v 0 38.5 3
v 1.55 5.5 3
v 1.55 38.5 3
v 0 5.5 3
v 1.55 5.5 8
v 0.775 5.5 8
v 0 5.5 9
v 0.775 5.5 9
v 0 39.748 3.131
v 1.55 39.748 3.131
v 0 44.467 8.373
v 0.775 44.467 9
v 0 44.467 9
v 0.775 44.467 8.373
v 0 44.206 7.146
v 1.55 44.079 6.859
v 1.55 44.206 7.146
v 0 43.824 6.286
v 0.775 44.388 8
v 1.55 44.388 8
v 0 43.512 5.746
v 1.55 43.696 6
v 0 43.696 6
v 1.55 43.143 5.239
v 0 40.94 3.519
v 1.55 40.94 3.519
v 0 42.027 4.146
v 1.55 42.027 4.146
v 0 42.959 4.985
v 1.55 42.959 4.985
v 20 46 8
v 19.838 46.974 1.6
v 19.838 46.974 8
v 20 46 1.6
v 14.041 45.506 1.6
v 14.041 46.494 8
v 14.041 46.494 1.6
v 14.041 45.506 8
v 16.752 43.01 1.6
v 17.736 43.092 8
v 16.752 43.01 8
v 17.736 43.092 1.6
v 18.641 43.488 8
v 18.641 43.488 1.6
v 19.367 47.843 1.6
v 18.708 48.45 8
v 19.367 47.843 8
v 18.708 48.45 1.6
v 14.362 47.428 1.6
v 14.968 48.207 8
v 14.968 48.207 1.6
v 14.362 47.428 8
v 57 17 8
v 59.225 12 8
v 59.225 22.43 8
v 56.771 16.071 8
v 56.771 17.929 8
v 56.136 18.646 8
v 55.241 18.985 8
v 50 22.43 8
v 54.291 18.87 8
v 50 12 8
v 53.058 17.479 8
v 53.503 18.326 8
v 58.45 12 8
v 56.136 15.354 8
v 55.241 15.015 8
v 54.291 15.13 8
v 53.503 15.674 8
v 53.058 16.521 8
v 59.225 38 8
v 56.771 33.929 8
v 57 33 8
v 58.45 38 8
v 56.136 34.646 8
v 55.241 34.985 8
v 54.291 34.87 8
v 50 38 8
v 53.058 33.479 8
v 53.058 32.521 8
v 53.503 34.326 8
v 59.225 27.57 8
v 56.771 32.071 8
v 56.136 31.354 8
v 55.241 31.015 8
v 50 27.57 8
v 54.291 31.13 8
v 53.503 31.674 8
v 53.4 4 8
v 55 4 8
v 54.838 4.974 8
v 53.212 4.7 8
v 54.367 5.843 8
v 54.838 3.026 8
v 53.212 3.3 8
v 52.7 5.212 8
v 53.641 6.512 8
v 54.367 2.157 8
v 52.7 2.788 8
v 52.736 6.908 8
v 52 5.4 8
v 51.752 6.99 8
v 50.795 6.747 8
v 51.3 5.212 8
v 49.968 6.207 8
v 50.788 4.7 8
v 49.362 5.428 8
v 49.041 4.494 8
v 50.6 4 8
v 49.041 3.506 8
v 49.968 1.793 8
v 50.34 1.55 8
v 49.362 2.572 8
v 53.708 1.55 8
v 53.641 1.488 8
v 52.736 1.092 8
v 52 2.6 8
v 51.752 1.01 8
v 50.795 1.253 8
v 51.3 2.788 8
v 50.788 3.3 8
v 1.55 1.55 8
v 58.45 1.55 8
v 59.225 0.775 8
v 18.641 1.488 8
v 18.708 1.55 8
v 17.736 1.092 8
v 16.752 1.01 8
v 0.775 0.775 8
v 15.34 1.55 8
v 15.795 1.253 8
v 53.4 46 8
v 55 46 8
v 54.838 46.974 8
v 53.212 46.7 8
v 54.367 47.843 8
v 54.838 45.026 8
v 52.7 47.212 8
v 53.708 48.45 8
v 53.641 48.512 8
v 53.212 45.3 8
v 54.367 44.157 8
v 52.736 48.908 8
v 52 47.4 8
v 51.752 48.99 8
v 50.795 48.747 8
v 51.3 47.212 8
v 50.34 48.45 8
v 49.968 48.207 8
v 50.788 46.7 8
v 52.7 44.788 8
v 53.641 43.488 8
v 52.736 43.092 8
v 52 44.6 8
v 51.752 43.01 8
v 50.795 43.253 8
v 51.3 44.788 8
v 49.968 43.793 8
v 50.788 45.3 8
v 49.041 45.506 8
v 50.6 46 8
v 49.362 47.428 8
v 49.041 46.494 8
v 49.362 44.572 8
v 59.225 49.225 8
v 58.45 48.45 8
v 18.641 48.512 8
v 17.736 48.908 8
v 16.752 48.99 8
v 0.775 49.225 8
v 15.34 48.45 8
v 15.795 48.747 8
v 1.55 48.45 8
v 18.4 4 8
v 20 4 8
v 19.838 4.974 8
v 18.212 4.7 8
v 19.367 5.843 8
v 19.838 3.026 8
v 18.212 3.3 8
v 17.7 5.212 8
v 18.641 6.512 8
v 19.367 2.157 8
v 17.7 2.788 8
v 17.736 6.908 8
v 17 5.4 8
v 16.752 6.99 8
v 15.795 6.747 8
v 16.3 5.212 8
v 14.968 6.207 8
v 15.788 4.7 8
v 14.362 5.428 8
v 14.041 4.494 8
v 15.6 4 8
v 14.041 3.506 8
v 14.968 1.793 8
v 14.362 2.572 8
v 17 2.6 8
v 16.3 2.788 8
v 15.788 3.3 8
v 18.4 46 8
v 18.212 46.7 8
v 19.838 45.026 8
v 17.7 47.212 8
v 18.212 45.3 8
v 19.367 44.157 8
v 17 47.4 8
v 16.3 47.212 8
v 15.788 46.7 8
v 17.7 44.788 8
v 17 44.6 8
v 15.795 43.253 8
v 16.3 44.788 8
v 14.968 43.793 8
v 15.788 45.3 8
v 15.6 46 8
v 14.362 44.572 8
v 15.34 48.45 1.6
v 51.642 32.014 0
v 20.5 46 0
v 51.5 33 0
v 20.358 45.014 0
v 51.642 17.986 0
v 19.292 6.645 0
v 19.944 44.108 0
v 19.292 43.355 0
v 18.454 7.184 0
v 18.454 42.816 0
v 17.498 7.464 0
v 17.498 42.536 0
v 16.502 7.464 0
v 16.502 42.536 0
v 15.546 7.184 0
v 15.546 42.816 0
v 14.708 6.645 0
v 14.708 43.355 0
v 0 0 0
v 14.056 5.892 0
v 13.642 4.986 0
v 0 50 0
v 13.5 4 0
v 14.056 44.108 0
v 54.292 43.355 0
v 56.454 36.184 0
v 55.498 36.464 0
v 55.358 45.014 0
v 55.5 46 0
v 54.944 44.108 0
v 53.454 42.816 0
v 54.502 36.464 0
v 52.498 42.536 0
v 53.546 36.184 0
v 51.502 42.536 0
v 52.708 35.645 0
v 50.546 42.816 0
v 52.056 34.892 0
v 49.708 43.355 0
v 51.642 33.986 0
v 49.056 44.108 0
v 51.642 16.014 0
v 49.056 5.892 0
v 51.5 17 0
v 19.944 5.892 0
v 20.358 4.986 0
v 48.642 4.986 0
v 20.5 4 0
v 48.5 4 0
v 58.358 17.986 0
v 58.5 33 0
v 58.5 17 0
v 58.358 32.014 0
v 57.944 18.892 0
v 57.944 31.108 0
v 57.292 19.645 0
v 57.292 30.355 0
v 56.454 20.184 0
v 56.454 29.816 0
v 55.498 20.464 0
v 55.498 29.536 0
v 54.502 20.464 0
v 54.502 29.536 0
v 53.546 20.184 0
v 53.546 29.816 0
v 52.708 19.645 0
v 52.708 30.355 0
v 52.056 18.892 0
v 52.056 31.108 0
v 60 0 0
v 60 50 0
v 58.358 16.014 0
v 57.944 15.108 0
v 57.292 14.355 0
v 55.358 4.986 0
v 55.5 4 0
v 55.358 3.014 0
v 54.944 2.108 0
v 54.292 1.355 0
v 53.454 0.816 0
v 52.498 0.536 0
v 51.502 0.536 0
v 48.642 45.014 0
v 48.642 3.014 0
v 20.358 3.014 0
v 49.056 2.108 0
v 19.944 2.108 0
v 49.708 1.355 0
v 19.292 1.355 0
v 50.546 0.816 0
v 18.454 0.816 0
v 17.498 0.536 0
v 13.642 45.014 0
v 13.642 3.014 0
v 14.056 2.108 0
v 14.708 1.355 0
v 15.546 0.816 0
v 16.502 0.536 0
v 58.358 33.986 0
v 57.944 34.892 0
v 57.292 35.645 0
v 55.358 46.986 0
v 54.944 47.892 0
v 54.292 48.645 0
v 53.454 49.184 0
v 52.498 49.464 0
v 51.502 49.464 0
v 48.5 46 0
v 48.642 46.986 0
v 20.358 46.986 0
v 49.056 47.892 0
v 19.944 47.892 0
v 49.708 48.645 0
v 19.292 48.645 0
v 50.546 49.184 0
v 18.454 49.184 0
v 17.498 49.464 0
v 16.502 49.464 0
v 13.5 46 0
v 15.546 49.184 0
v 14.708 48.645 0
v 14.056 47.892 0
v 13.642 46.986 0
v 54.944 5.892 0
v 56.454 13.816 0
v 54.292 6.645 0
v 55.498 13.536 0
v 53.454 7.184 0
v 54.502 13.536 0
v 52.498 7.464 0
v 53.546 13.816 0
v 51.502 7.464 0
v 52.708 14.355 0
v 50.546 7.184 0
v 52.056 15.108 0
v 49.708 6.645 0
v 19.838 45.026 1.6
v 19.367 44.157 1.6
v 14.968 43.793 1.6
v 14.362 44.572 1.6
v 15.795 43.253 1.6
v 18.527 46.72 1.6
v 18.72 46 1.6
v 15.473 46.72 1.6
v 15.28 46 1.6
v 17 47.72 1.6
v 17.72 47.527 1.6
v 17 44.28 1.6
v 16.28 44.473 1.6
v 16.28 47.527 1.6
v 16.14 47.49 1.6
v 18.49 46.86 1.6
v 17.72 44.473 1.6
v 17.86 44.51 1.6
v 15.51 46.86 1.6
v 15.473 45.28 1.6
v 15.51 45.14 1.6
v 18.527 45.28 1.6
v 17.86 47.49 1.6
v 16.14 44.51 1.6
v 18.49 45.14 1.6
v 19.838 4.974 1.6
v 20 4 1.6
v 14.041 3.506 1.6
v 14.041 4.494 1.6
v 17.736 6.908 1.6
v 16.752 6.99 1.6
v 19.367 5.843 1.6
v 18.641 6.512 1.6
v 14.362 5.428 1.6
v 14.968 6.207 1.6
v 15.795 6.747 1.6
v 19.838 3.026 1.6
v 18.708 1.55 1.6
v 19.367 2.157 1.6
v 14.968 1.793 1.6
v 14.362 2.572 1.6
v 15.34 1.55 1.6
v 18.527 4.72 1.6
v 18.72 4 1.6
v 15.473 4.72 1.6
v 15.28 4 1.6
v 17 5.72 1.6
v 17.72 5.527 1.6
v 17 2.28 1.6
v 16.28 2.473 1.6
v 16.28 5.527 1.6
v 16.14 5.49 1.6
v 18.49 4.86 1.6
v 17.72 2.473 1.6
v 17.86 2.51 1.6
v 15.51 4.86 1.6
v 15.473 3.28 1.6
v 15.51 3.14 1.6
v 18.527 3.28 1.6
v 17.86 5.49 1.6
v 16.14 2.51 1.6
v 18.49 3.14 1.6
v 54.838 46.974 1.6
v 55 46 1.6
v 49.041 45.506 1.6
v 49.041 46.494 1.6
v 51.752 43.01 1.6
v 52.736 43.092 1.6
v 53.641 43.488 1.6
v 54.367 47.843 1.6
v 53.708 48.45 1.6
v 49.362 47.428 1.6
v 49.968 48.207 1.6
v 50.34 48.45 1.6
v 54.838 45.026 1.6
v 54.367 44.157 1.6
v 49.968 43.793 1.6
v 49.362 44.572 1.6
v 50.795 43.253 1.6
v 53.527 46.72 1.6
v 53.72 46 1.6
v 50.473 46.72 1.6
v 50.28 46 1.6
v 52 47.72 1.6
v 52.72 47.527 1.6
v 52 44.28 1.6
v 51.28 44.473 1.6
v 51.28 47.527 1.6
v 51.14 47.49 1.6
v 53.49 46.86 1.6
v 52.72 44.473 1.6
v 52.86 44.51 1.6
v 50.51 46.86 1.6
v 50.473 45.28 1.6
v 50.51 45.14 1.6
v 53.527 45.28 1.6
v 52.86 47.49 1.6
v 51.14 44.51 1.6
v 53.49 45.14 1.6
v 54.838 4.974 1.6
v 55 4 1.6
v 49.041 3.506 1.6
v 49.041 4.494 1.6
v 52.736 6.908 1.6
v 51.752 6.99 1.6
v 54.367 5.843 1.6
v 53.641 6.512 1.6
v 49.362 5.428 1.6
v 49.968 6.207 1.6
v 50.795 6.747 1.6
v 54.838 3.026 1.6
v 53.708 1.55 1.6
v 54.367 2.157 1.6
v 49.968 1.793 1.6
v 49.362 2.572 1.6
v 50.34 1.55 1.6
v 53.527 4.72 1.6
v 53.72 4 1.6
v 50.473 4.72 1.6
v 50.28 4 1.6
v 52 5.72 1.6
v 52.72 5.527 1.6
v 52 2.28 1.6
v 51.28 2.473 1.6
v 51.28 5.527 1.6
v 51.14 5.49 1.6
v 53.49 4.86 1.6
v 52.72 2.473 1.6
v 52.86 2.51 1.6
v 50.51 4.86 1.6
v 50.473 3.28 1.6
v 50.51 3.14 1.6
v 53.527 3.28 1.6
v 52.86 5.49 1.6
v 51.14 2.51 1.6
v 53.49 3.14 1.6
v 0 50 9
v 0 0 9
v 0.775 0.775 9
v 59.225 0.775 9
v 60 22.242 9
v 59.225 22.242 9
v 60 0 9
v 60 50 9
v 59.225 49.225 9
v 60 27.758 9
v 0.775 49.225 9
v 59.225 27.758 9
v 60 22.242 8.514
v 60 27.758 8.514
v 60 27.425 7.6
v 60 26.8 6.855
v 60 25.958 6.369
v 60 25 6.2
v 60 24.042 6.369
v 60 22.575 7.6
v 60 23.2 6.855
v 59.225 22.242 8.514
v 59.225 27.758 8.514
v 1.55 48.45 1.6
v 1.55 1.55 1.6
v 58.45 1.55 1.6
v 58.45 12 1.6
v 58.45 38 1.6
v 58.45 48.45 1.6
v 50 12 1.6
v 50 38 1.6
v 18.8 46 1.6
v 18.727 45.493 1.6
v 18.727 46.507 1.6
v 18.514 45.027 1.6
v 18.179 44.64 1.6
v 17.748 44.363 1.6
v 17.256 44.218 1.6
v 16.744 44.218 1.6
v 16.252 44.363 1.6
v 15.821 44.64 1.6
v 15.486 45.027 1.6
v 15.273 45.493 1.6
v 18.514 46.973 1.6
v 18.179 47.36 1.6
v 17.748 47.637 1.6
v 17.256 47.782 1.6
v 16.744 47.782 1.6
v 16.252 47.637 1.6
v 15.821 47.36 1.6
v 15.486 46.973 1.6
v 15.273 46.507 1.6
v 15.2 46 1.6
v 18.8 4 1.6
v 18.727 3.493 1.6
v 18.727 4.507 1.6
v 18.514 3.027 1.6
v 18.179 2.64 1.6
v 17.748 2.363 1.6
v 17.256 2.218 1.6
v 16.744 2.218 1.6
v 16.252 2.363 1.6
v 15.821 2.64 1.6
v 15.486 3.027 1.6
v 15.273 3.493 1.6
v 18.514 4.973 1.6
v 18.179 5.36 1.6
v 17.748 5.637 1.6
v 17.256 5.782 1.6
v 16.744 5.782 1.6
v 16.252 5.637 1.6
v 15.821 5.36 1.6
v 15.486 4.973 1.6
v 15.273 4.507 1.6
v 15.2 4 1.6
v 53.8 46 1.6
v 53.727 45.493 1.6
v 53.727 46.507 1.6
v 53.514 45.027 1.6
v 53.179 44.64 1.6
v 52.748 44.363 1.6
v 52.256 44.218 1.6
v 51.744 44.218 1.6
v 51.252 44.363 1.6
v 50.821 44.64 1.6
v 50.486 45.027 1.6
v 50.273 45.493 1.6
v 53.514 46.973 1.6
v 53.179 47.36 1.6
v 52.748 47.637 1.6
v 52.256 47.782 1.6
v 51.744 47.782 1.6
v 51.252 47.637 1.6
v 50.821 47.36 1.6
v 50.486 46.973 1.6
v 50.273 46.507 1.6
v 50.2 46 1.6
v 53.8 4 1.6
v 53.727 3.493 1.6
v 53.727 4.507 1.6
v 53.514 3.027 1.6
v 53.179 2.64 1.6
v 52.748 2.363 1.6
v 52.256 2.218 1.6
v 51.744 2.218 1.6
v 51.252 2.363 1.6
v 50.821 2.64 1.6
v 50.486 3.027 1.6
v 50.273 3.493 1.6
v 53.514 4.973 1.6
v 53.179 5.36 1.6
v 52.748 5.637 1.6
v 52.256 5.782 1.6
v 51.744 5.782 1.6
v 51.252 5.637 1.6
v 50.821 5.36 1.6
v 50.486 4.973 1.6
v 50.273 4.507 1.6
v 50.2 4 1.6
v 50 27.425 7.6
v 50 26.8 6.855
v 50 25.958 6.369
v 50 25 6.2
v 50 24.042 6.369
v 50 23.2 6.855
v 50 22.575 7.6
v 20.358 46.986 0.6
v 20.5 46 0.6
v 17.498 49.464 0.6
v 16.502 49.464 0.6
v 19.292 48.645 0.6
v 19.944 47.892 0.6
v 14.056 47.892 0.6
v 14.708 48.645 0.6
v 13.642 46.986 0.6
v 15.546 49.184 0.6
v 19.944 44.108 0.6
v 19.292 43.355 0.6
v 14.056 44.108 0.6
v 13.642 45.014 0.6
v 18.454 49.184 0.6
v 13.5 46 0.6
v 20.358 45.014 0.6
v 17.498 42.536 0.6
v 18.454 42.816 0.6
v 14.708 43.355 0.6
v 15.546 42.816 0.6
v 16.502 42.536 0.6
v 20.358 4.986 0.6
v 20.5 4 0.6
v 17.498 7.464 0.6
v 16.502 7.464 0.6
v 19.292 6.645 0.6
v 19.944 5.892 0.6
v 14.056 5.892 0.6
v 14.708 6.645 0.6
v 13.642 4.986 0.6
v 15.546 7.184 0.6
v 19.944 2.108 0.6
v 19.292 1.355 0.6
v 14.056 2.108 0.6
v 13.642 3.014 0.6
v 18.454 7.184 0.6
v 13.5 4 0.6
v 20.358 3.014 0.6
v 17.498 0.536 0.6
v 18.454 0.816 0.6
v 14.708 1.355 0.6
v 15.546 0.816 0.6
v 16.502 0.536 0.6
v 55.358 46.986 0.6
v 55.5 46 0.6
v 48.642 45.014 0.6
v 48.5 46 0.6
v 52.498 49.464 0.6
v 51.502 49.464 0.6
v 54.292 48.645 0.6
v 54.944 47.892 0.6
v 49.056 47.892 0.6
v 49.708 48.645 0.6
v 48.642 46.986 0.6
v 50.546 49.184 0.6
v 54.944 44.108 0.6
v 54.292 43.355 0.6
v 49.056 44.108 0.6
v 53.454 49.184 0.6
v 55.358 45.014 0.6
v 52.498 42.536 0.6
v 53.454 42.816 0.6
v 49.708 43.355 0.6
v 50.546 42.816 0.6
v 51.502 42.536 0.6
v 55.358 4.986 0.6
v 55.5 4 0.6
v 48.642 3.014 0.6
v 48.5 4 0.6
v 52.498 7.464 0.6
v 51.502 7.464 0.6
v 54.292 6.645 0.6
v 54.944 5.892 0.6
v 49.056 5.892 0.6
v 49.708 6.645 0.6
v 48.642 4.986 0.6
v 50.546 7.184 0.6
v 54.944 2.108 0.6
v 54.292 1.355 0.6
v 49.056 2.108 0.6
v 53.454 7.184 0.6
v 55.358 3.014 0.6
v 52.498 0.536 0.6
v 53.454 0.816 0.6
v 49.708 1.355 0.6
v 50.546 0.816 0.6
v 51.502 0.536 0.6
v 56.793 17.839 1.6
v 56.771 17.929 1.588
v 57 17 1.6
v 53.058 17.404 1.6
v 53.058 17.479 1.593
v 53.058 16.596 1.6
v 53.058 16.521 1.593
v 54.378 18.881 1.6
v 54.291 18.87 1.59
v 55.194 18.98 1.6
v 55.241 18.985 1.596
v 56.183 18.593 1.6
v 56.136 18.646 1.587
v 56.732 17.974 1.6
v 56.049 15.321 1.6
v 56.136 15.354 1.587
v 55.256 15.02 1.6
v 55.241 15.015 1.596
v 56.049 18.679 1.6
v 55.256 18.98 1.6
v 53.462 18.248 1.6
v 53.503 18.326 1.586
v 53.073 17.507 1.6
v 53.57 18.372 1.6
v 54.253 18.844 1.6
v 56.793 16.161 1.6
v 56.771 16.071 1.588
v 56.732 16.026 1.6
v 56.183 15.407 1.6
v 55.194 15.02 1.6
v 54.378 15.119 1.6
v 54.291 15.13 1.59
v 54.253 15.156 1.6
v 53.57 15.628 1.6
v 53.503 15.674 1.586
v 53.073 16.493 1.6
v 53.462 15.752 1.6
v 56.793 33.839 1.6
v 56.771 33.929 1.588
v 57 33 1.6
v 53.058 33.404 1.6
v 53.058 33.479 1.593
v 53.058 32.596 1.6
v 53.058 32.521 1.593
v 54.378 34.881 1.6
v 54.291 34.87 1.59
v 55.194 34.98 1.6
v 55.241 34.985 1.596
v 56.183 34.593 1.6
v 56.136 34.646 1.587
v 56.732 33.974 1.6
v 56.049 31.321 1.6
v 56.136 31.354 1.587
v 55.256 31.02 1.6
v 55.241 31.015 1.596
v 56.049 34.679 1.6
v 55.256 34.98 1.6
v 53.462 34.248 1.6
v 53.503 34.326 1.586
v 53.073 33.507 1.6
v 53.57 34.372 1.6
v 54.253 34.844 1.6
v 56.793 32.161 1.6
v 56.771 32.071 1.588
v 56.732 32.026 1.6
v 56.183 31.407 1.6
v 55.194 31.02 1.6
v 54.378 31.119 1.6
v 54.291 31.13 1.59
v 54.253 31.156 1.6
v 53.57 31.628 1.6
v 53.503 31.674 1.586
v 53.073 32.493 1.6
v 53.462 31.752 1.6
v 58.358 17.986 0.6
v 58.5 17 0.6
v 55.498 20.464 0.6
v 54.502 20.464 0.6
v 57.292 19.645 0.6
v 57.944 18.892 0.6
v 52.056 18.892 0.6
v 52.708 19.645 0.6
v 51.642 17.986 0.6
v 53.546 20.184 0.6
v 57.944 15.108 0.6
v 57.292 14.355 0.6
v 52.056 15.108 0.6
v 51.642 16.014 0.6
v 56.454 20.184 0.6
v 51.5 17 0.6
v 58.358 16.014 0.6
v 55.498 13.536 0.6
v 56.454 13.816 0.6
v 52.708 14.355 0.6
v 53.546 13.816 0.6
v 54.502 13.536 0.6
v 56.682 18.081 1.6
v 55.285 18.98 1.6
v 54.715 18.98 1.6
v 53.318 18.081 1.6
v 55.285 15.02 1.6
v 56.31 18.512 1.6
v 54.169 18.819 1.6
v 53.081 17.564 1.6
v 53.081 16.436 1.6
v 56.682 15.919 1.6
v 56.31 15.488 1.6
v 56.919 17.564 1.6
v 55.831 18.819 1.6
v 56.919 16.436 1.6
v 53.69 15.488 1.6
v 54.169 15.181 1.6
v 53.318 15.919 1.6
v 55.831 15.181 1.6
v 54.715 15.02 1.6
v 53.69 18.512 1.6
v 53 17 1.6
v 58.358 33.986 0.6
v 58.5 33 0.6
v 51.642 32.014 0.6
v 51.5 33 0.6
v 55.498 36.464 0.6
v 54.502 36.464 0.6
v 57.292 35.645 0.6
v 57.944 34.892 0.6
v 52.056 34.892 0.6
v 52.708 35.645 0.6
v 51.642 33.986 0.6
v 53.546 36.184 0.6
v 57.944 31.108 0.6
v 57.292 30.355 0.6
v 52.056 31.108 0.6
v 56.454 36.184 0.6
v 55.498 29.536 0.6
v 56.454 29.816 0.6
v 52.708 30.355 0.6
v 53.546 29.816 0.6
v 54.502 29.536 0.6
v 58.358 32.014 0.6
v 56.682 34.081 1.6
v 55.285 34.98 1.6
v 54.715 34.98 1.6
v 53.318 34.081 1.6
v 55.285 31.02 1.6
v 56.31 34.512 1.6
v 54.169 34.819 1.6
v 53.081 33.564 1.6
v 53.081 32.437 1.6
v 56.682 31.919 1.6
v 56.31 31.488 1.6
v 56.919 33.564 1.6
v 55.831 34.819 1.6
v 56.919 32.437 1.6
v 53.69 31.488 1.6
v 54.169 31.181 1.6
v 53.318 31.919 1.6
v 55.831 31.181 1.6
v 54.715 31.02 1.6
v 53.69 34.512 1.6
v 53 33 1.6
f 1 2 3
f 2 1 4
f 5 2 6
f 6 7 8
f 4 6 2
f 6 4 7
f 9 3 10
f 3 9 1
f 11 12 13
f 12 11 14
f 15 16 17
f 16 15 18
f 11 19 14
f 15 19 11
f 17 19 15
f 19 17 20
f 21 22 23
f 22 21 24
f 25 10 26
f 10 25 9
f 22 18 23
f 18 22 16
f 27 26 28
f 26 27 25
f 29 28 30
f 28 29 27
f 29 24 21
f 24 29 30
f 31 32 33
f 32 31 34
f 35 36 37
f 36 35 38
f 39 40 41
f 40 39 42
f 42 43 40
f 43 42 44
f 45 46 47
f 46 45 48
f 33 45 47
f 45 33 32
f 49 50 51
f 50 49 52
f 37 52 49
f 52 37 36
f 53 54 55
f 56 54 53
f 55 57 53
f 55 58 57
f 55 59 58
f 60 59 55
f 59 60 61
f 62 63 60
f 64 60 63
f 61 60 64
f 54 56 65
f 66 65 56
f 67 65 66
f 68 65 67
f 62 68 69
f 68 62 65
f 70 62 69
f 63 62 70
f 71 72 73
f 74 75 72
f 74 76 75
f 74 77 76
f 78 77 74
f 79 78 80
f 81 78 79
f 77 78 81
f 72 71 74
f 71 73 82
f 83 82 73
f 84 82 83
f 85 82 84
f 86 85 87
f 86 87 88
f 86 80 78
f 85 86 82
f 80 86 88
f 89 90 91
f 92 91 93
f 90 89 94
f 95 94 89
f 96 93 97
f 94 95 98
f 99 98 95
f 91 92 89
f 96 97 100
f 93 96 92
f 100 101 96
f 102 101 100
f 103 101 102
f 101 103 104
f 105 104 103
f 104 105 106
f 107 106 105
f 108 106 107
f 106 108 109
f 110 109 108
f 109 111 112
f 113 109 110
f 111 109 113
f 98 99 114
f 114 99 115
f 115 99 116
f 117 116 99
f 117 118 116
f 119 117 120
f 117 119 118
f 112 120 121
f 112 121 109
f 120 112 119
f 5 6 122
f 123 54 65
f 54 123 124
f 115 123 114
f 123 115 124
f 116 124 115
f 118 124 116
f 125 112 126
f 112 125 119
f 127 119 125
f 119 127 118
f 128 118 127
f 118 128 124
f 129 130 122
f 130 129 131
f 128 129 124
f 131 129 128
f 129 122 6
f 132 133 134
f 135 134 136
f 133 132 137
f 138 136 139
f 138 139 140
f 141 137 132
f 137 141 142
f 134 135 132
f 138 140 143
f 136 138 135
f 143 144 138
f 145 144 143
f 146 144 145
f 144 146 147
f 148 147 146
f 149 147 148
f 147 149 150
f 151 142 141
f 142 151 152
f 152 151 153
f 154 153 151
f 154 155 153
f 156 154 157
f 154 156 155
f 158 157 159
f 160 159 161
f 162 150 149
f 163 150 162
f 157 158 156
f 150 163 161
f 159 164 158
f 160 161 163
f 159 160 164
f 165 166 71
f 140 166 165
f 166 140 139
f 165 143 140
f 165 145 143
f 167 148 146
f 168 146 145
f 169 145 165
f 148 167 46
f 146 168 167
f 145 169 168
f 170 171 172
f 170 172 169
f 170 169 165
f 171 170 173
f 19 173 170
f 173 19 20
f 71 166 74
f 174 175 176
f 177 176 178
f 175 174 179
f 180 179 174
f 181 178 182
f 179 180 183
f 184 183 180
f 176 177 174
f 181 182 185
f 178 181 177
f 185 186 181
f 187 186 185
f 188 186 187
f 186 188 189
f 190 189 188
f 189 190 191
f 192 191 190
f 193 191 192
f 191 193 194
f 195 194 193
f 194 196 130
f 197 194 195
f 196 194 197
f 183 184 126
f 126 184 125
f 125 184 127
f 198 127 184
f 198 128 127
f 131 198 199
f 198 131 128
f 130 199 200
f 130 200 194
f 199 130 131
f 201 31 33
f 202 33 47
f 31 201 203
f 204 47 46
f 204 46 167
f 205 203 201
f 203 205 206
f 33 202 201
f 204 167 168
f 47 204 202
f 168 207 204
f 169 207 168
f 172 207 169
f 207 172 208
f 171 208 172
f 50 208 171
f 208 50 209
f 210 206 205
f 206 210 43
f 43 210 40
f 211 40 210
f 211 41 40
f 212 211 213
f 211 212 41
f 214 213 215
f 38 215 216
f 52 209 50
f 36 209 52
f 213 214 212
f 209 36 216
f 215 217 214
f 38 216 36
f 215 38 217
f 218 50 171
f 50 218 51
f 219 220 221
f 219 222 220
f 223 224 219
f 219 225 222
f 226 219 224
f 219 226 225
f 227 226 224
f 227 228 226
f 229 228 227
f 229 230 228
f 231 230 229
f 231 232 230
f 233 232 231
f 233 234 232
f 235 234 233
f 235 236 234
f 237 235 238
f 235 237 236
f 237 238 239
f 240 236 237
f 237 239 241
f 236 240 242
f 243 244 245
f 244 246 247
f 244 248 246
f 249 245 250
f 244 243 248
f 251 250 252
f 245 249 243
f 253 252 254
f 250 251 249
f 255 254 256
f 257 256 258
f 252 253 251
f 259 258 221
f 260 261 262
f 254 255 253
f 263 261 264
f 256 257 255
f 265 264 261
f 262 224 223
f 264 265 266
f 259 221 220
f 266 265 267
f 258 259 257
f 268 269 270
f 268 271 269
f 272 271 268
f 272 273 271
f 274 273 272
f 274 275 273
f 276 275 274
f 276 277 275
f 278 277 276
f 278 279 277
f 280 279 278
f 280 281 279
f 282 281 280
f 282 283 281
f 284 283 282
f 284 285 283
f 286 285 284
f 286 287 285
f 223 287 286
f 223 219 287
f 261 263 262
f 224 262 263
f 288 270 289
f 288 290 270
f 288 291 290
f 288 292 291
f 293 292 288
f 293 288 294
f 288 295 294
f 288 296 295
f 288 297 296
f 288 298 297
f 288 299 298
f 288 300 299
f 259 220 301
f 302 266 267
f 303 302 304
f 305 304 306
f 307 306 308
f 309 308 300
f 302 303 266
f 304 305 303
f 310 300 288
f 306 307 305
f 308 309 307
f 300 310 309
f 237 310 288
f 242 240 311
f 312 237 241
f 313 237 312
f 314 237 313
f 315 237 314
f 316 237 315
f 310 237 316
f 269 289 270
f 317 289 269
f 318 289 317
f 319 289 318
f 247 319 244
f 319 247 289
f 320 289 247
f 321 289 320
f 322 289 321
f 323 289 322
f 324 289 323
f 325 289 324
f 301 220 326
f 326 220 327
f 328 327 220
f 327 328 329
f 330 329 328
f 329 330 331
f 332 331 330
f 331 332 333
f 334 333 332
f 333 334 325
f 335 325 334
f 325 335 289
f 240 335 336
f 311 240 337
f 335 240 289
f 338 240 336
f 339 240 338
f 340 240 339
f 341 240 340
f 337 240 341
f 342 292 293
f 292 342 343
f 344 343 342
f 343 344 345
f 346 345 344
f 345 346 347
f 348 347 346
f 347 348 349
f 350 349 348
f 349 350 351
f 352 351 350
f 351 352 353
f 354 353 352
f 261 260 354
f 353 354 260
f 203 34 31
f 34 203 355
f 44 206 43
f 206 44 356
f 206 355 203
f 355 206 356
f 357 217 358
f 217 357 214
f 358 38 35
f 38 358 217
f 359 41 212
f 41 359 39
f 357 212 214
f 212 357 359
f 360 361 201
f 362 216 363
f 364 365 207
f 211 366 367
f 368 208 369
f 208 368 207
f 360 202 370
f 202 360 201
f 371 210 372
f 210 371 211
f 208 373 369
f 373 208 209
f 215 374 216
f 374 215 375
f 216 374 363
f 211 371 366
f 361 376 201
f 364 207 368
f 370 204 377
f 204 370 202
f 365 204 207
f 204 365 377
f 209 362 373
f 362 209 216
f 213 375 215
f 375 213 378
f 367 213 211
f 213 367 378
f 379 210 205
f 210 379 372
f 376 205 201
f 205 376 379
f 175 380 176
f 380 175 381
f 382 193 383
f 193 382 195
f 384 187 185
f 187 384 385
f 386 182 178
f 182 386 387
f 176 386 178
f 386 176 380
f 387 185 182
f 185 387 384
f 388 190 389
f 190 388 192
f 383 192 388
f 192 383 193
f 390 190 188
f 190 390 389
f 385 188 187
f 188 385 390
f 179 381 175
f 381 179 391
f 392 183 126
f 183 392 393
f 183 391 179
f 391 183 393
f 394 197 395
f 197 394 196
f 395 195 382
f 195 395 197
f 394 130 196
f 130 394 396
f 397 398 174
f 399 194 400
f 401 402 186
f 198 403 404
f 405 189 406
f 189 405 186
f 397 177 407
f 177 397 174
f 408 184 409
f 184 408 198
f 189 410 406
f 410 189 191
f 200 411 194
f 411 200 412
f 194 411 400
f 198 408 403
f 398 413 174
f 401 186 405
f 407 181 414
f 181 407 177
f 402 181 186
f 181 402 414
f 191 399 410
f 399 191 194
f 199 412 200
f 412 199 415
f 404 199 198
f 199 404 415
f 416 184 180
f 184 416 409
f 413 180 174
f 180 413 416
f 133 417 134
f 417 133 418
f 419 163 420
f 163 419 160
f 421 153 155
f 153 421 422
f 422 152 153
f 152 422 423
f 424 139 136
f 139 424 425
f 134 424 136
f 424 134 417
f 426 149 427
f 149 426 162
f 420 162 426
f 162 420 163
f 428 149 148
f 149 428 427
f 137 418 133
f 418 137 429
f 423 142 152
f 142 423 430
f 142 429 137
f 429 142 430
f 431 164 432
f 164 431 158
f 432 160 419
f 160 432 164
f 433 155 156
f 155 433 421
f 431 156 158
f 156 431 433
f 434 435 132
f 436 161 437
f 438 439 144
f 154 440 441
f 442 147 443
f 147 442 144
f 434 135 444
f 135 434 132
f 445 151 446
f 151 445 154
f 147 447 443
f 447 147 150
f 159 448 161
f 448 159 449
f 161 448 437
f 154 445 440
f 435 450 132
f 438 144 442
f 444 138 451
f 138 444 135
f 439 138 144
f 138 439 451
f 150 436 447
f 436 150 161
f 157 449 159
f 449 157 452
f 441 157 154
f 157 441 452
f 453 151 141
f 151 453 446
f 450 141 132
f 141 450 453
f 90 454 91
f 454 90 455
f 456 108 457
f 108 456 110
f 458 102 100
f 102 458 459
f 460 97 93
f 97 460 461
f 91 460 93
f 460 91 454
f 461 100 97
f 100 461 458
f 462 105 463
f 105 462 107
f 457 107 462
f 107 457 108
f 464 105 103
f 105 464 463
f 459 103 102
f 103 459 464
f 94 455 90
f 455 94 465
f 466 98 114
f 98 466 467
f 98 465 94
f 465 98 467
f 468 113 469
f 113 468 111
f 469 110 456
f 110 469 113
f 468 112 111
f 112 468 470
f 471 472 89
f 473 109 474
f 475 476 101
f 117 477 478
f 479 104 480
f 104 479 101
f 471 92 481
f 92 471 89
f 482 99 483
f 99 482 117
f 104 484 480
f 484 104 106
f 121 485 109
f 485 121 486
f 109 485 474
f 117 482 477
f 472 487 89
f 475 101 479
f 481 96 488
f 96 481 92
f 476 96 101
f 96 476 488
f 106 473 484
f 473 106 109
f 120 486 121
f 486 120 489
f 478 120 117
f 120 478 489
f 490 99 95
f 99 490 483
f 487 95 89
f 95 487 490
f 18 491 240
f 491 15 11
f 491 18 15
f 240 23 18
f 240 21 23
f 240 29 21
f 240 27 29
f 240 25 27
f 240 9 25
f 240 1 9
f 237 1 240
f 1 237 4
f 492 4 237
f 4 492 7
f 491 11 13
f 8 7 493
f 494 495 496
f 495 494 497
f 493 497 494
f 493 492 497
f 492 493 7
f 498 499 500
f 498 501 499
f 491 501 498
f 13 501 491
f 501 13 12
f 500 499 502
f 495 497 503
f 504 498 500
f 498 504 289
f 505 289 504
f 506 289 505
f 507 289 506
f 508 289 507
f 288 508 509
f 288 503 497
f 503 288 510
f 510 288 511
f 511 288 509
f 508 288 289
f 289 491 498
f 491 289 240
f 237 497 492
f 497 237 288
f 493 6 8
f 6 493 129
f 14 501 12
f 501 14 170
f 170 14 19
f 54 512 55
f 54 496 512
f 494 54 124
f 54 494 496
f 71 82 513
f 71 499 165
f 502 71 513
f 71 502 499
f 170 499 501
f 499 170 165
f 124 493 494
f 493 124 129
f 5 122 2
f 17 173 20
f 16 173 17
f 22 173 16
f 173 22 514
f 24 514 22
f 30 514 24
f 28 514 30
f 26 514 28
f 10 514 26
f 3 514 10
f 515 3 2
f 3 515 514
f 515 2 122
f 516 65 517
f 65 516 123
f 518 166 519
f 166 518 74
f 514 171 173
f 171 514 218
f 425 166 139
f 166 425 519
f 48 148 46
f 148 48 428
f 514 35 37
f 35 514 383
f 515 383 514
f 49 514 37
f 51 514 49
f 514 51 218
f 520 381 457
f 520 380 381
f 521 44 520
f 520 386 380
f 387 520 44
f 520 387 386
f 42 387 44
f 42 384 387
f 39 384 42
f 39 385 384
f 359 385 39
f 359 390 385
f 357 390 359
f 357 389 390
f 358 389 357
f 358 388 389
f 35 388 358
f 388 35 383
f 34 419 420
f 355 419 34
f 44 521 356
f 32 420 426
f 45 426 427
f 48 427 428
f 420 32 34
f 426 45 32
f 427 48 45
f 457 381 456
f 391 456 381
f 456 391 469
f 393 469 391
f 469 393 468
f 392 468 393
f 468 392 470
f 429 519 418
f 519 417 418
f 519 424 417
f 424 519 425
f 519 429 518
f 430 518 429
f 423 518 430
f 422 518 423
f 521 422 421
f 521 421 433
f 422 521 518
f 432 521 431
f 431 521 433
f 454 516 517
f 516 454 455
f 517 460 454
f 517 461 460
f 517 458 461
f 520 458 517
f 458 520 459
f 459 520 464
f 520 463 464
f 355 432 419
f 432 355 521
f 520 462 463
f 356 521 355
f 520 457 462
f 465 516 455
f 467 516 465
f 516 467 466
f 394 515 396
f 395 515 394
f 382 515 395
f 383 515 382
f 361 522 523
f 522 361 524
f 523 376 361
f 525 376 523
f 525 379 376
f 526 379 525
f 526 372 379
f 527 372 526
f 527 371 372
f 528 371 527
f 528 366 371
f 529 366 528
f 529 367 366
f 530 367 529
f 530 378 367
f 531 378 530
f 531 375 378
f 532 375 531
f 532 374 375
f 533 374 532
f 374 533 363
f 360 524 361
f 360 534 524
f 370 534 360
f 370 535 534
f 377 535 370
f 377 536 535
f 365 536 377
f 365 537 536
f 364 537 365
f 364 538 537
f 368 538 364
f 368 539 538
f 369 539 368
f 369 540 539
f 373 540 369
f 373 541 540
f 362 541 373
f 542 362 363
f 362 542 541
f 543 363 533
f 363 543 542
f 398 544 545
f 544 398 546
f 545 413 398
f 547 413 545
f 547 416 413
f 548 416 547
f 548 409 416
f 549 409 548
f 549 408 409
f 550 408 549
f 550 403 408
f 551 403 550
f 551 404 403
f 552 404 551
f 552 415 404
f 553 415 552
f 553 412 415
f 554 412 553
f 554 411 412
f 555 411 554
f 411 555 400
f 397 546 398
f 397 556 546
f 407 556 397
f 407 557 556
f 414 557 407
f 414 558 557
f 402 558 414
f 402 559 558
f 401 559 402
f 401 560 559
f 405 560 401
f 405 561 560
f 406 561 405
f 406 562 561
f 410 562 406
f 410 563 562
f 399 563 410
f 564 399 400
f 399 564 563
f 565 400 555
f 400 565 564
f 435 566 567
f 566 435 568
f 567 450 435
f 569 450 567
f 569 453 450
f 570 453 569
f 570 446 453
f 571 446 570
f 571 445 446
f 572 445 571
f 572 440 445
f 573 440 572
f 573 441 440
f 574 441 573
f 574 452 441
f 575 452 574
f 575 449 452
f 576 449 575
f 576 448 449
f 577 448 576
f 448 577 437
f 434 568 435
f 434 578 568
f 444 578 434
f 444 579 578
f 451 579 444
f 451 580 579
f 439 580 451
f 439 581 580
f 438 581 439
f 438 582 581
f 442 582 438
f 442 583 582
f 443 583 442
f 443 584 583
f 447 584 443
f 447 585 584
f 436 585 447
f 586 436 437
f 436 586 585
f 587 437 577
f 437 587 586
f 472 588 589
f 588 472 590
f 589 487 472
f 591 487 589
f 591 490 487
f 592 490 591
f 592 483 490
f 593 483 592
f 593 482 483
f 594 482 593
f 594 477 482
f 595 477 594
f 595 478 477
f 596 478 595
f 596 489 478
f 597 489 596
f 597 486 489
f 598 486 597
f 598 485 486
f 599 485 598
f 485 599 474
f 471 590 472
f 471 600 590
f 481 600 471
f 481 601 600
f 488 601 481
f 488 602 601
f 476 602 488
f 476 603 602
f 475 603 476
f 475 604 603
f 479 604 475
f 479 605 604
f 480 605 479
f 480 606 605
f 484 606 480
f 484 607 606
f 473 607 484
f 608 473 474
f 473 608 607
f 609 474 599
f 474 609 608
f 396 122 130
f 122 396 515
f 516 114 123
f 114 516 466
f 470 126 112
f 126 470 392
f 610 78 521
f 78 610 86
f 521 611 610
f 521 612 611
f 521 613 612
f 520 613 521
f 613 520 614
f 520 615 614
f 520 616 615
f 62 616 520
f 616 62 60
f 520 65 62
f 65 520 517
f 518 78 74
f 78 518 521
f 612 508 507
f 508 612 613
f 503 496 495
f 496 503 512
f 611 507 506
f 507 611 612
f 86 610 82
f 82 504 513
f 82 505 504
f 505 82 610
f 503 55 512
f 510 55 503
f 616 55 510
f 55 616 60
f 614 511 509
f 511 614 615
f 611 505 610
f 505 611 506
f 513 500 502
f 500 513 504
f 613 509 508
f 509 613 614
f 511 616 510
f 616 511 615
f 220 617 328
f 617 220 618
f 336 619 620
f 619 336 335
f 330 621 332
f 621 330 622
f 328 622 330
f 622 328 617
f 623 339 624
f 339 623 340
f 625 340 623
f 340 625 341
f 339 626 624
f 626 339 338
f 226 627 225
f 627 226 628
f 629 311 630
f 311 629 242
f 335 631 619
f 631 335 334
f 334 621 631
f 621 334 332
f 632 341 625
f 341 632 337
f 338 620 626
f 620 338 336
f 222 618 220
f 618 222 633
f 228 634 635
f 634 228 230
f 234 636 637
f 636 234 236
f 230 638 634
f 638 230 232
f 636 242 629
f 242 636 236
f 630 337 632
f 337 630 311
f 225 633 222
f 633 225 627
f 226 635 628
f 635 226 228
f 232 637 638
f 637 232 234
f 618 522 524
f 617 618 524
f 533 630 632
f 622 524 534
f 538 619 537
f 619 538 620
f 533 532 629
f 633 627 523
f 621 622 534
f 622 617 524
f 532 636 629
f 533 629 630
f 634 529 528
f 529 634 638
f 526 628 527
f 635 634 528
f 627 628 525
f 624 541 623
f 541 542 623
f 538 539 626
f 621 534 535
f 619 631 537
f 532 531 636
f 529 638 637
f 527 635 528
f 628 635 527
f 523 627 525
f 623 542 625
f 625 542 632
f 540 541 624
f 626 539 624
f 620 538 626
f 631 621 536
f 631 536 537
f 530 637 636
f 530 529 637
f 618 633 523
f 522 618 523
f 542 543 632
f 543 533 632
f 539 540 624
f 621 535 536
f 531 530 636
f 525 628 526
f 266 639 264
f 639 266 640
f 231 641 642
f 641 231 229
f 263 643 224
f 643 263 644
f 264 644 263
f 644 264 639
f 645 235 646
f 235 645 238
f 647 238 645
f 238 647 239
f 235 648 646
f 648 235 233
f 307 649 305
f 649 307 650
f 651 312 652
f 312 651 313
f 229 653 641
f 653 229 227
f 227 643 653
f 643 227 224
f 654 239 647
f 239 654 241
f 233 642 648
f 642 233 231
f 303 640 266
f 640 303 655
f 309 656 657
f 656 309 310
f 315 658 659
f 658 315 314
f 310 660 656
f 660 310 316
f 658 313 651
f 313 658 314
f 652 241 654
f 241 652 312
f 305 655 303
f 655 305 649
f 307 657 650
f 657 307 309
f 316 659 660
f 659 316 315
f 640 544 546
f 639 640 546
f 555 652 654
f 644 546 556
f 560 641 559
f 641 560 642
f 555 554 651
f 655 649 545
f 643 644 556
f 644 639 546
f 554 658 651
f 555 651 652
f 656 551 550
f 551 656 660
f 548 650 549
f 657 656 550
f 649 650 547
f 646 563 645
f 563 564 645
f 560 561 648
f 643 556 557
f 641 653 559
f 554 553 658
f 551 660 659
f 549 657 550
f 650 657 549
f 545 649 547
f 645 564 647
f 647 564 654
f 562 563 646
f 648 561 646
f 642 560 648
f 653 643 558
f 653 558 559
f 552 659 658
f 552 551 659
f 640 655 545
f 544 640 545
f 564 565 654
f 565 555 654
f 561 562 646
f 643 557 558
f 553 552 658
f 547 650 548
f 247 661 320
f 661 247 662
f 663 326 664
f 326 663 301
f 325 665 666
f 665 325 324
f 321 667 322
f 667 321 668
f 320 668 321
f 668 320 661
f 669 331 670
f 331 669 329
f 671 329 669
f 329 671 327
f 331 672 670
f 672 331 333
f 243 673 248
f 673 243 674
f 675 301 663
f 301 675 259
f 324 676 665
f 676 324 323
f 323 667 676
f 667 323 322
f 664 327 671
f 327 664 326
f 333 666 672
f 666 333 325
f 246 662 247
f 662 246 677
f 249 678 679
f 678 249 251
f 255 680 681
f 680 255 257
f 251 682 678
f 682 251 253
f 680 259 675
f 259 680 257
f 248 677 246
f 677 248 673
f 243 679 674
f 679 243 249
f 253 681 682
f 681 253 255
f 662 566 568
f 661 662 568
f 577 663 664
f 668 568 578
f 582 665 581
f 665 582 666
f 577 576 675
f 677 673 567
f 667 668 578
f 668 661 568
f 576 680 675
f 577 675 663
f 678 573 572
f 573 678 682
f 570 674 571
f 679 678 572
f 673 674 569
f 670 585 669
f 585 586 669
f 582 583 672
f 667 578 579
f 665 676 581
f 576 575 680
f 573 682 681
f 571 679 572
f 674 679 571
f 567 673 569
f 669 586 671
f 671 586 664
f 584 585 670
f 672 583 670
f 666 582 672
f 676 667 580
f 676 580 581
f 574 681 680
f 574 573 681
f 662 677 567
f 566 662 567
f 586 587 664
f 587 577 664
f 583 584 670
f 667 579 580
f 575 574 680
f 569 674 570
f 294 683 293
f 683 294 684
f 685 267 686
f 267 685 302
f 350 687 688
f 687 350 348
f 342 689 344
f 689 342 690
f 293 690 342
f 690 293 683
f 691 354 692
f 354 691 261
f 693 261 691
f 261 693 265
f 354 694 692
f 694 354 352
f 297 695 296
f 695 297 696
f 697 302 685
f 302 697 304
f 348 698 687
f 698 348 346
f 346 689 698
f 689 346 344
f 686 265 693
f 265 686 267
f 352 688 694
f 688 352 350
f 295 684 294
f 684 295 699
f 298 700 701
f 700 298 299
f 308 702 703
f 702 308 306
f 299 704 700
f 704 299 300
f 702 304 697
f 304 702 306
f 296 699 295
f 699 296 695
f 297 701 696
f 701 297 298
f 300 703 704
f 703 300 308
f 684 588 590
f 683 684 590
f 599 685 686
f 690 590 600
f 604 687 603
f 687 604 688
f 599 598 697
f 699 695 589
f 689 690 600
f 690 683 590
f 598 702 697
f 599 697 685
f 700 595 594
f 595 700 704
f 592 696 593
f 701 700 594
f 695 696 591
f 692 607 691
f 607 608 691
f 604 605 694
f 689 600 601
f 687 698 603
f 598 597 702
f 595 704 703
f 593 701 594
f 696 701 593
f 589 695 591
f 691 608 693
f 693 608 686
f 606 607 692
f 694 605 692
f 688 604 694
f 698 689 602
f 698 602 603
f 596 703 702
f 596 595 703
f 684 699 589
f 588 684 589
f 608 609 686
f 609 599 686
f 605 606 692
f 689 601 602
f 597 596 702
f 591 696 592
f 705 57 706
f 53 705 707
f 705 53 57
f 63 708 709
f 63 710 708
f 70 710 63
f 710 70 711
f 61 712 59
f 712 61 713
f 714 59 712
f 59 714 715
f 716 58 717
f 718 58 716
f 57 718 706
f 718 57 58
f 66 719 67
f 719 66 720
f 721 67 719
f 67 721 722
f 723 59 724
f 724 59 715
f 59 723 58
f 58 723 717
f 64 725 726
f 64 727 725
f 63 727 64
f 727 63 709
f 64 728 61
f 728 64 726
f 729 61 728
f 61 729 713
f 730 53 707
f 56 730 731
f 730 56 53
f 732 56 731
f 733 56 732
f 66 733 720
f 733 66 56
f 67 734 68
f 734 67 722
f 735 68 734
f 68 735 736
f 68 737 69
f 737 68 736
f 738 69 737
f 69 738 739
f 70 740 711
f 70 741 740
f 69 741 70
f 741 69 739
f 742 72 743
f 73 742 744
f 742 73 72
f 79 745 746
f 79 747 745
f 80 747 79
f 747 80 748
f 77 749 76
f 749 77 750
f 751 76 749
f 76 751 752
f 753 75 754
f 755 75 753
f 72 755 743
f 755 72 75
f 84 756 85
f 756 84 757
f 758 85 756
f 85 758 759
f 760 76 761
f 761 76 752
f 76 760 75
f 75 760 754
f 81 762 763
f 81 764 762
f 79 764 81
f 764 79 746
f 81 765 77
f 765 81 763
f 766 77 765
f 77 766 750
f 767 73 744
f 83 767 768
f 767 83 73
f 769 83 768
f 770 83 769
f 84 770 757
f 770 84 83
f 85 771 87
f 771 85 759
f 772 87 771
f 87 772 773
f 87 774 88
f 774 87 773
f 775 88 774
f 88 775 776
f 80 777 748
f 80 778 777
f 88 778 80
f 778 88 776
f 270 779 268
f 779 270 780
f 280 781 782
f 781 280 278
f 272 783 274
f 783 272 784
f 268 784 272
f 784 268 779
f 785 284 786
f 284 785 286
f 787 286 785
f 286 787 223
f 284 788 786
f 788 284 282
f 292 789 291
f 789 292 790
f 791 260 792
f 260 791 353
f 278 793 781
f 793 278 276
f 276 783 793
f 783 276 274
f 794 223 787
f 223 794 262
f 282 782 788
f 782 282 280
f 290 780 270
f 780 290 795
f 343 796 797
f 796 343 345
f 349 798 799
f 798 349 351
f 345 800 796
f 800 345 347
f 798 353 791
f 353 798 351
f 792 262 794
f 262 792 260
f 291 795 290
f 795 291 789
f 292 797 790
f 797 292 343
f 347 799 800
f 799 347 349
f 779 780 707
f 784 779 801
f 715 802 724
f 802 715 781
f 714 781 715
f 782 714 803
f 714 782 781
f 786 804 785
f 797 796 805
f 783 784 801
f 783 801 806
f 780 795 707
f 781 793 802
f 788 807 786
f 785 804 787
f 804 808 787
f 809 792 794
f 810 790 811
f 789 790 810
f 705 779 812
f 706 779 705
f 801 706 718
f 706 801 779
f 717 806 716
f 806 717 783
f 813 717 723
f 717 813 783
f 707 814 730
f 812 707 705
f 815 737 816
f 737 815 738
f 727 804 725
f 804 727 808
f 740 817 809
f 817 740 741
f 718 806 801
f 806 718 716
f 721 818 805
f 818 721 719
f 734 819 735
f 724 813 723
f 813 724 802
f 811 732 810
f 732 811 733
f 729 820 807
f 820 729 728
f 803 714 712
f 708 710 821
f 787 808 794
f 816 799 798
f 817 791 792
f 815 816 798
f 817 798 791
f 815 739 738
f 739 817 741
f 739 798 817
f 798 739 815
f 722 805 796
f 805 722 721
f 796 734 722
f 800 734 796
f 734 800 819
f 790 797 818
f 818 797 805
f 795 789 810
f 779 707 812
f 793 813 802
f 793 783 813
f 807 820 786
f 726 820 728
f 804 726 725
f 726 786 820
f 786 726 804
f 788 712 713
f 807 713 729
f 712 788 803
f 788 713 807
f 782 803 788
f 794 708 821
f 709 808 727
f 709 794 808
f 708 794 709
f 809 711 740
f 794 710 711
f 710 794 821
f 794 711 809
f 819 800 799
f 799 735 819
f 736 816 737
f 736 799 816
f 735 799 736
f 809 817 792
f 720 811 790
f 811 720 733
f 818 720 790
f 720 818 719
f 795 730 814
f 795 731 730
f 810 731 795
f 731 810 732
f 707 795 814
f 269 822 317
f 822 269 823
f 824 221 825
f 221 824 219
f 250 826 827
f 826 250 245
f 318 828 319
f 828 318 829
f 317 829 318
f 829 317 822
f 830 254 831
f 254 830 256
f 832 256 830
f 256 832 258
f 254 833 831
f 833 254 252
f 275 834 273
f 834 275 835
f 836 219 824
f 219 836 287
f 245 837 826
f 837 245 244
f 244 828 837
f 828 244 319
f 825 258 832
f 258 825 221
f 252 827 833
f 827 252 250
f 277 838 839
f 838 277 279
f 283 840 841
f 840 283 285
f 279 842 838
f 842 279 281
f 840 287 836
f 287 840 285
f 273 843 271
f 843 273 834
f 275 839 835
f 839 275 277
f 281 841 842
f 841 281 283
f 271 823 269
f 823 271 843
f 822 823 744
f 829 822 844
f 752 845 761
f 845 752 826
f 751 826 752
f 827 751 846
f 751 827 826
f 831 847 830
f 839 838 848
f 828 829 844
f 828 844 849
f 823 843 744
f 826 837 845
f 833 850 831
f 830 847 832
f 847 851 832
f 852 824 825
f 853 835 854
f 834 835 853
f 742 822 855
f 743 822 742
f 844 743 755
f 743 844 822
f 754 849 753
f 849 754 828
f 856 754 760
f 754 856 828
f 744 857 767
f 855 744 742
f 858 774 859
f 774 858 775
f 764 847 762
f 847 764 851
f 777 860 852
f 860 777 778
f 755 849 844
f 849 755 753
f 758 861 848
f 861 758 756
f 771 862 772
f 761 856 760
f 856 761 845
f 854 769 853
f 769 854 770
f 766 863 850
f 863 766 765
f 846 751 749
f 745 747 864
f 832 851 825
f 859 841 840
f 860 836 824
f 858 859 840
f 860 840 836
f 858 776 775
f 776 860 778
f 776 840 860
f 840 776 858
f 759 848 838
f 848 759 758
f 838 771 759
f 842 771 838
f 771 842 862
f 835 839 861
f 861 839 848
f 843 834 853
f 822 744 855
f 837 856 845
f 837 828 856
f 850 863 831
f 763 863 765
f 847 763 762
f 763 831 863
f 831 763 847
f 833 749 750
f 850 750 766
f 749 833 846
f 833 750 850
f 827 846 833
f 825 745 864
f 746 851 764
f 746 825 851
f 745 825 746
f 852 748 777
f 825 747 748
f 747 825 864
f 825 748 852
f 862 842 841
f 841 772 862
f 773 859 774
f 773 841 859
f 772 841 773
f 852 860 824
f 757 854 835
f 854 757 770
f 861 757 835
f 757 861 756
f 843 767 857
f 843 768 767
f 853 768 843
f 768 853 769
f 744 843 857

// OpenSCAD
/* Snes 2 Neo Geo DB15 shell (bottom)
   (c) R.Edwards 2019
*/

cart_length=60; // 60
cart_width=50;
cart_height=9;
screw_sep = 39.5;
front_thickness = 1.6;
sides_thickness = 1.6 - 0.05;
rim_height = 1;
port_width = 39;
port_height = 12;
screw_radius = 3;
screw_from_edge = 1;

difference() {
    union() {
        difference() {
            // main shell
            cube([cart_length, cart_width, cart_height]);
            // rims
            translate([sides_thickness/2, sides_thickness/2, cart_height-rim_height])
                cube([cart_length-sides_thickness,
                    cart_width-sides_thickness, rim_height]);
            // make hollow
            translate([sides_thickness, sides_thickness, front_thickness])
                cube([cart_length-sides_thickness*2,
                    cart_width-sides_thickness*2,
                    cart_height-front_thickness]);
            // cutout snes port
            translate([0, (cart_width - port_width)/2, cart_height - port_height/2])
                translate([-sides_thickness/2, 0, 0])
                    union() {
                        cube([sides_thickness*2, port_width-port_height/2, port_height]);
                        translate([0,0,port_height/2])
                            rotate([0,90,0]) {
    //                            cylinder(h = sides_thickness*2, r1 = port_height/2, r2 = port_height/2,  $fs = 1);
                                translate([0, port_width-port_height/2, 0])
                                    cylinder(h = sides_thickness*2, r1 = port_height/2, r2 = port_height/2,  $fs = 1);
                            }
               }
        }
        translate([17, cart_width-screw_radius-screw_from_edge, 0])
            difference() {
                cylinder(h = cart_height-rim_height, r1 = screw_radius, r2 = screw_radius,  $fs = 1);
                cylinder(h = cart_height-rim_height, r1 = 1.8, r2 = 1.4,  $fs = 1);
            }
        translate([17, screw_radius+screw_from_edge, 0])
            difference() {
                cylinder(h = cart_height-rim_height, r1 = screw_radius, r2 = screw_radius,  $fs = 1);
                cylinder(h = cart_height-rim_height, r1 = 1.8, r2 = 1.4,  $fs = 1);
            }
        translate([52, cart_width-screw_radius-screw_from_edge, 0])
            difference() {
                cylinder(h = cart_height-rim_height, r1 = screw_radius, r2 = screw_radius,  $fs = 1);
                cylinder(h = cart_height-rim_height, r1 = 1.8, r2 = 1.4,  $fs = 1);
            }
        translate([52, screw_radius+screw_from_edge, 0])
            difference() {
                cylinder(h = cart_height-rim_height, r1 = screw_radius, r2 = screw_radius,  $fs = 1);
                cylinder(h = cart_height-rim_height, r1 = 1.8, r2 = 1.4,  $fs = 1);
            }
        // cable grip
        translate([50, (cart_width-26)/2, 0])
            cube([cart_length-50, 26, cart_height-rim_height]);
    }
    // cutout cable hole
    translate([cart_length-20, cart_width/2, cart_height])
        rotate([0,90,0])
            cylinder(h = 20, r1 = 2.8, r2 = 2.8,  $fs = 1);
    // screw top
    translate([17, cart_width-screw_radius-screw_from_edge, 0])
        cylinder(h = 0.6, r1 = 3.5, r2 = 3.5,  $fs = 1);
    translate([17, cart_width-screw_radius-screw_from_edge, 0.6])
        cylinder(h = front_thickness-0.6, r1 = 3.5, r2 = 1.8,  $fs = 1);
    translate([17, screw_radius+screw_from_edge, 0])
        cylinder(h = 0.6, r1 = 3.5, r2 = 3.5,  $fs = 1);
    translate([17, screw_radius+screw_from_edge, 0.6])
        cylinder(h = front_thickness-0.6, r1 = 3.5, r2 = 1.8,  $fs = 1);
    translate([52, cart_width-screw_radius-screw_from_edge, 0])
        cylinder(h = 0.6, r1 = 3.5, r2 = 3.5,  $fs = 1);
    translate([52, cart_width-screw_radius-screw_from_edge, 0.6])
        cylinder(h = front_thickness-0.6, r1 = 3.5, r2 = 1.8,  $fs = 1);
    translate([52, screw_radius+screw_from_edge, 0])
        cylinder(h = 0.6, r1 = 3.5, r2 = 3.5,  $fs = 1);
    translate([52, screw_radius+screw_from_edge, 0.6])
        cylinder(h = front_thickness-0.6, r1 = 3.5, r2 = 1.8,  $fs = 1);
    // holes for cable grip
    translate([55, cart_width/2-8, 0])
        cylinder(h = cart_height-rim_height, r1 = 2, r2 = 2,  $fs = 1);
    translate([55, cart_width/2+8, 0])
        cylinder(h = cart_height-rim_height, r1 = 2, r2 = 2,  $fs = 1);
    // screw tops
    translate([55, cart_width/2-8, 0])
        cylinder(h = 0.6, r1 = 3.5, r2 = 3.5,  $fs = 1);
    translate([55, cart_width/2-8, 0.6])
        cylinder(h = front_thickness-0.6, r1 = 3.5, r2 = 2,  $fs = 1);
    translate([55, cart_width/2+8, 0])
        cylinder(h = 0.6, r1 = 3.5, r2 = 3.5,  $fs = 1);
    translate([55, cart_width/2+8, 0.6])
        cylinder(h = front_thickness-0.6, r1 = 3.5, r2 = 2,  $fs = 1);
    
}
//            cylinder(h = sides_thickness, r1 = port_height/2, r2 = port_height/2,  $fs = 1);
